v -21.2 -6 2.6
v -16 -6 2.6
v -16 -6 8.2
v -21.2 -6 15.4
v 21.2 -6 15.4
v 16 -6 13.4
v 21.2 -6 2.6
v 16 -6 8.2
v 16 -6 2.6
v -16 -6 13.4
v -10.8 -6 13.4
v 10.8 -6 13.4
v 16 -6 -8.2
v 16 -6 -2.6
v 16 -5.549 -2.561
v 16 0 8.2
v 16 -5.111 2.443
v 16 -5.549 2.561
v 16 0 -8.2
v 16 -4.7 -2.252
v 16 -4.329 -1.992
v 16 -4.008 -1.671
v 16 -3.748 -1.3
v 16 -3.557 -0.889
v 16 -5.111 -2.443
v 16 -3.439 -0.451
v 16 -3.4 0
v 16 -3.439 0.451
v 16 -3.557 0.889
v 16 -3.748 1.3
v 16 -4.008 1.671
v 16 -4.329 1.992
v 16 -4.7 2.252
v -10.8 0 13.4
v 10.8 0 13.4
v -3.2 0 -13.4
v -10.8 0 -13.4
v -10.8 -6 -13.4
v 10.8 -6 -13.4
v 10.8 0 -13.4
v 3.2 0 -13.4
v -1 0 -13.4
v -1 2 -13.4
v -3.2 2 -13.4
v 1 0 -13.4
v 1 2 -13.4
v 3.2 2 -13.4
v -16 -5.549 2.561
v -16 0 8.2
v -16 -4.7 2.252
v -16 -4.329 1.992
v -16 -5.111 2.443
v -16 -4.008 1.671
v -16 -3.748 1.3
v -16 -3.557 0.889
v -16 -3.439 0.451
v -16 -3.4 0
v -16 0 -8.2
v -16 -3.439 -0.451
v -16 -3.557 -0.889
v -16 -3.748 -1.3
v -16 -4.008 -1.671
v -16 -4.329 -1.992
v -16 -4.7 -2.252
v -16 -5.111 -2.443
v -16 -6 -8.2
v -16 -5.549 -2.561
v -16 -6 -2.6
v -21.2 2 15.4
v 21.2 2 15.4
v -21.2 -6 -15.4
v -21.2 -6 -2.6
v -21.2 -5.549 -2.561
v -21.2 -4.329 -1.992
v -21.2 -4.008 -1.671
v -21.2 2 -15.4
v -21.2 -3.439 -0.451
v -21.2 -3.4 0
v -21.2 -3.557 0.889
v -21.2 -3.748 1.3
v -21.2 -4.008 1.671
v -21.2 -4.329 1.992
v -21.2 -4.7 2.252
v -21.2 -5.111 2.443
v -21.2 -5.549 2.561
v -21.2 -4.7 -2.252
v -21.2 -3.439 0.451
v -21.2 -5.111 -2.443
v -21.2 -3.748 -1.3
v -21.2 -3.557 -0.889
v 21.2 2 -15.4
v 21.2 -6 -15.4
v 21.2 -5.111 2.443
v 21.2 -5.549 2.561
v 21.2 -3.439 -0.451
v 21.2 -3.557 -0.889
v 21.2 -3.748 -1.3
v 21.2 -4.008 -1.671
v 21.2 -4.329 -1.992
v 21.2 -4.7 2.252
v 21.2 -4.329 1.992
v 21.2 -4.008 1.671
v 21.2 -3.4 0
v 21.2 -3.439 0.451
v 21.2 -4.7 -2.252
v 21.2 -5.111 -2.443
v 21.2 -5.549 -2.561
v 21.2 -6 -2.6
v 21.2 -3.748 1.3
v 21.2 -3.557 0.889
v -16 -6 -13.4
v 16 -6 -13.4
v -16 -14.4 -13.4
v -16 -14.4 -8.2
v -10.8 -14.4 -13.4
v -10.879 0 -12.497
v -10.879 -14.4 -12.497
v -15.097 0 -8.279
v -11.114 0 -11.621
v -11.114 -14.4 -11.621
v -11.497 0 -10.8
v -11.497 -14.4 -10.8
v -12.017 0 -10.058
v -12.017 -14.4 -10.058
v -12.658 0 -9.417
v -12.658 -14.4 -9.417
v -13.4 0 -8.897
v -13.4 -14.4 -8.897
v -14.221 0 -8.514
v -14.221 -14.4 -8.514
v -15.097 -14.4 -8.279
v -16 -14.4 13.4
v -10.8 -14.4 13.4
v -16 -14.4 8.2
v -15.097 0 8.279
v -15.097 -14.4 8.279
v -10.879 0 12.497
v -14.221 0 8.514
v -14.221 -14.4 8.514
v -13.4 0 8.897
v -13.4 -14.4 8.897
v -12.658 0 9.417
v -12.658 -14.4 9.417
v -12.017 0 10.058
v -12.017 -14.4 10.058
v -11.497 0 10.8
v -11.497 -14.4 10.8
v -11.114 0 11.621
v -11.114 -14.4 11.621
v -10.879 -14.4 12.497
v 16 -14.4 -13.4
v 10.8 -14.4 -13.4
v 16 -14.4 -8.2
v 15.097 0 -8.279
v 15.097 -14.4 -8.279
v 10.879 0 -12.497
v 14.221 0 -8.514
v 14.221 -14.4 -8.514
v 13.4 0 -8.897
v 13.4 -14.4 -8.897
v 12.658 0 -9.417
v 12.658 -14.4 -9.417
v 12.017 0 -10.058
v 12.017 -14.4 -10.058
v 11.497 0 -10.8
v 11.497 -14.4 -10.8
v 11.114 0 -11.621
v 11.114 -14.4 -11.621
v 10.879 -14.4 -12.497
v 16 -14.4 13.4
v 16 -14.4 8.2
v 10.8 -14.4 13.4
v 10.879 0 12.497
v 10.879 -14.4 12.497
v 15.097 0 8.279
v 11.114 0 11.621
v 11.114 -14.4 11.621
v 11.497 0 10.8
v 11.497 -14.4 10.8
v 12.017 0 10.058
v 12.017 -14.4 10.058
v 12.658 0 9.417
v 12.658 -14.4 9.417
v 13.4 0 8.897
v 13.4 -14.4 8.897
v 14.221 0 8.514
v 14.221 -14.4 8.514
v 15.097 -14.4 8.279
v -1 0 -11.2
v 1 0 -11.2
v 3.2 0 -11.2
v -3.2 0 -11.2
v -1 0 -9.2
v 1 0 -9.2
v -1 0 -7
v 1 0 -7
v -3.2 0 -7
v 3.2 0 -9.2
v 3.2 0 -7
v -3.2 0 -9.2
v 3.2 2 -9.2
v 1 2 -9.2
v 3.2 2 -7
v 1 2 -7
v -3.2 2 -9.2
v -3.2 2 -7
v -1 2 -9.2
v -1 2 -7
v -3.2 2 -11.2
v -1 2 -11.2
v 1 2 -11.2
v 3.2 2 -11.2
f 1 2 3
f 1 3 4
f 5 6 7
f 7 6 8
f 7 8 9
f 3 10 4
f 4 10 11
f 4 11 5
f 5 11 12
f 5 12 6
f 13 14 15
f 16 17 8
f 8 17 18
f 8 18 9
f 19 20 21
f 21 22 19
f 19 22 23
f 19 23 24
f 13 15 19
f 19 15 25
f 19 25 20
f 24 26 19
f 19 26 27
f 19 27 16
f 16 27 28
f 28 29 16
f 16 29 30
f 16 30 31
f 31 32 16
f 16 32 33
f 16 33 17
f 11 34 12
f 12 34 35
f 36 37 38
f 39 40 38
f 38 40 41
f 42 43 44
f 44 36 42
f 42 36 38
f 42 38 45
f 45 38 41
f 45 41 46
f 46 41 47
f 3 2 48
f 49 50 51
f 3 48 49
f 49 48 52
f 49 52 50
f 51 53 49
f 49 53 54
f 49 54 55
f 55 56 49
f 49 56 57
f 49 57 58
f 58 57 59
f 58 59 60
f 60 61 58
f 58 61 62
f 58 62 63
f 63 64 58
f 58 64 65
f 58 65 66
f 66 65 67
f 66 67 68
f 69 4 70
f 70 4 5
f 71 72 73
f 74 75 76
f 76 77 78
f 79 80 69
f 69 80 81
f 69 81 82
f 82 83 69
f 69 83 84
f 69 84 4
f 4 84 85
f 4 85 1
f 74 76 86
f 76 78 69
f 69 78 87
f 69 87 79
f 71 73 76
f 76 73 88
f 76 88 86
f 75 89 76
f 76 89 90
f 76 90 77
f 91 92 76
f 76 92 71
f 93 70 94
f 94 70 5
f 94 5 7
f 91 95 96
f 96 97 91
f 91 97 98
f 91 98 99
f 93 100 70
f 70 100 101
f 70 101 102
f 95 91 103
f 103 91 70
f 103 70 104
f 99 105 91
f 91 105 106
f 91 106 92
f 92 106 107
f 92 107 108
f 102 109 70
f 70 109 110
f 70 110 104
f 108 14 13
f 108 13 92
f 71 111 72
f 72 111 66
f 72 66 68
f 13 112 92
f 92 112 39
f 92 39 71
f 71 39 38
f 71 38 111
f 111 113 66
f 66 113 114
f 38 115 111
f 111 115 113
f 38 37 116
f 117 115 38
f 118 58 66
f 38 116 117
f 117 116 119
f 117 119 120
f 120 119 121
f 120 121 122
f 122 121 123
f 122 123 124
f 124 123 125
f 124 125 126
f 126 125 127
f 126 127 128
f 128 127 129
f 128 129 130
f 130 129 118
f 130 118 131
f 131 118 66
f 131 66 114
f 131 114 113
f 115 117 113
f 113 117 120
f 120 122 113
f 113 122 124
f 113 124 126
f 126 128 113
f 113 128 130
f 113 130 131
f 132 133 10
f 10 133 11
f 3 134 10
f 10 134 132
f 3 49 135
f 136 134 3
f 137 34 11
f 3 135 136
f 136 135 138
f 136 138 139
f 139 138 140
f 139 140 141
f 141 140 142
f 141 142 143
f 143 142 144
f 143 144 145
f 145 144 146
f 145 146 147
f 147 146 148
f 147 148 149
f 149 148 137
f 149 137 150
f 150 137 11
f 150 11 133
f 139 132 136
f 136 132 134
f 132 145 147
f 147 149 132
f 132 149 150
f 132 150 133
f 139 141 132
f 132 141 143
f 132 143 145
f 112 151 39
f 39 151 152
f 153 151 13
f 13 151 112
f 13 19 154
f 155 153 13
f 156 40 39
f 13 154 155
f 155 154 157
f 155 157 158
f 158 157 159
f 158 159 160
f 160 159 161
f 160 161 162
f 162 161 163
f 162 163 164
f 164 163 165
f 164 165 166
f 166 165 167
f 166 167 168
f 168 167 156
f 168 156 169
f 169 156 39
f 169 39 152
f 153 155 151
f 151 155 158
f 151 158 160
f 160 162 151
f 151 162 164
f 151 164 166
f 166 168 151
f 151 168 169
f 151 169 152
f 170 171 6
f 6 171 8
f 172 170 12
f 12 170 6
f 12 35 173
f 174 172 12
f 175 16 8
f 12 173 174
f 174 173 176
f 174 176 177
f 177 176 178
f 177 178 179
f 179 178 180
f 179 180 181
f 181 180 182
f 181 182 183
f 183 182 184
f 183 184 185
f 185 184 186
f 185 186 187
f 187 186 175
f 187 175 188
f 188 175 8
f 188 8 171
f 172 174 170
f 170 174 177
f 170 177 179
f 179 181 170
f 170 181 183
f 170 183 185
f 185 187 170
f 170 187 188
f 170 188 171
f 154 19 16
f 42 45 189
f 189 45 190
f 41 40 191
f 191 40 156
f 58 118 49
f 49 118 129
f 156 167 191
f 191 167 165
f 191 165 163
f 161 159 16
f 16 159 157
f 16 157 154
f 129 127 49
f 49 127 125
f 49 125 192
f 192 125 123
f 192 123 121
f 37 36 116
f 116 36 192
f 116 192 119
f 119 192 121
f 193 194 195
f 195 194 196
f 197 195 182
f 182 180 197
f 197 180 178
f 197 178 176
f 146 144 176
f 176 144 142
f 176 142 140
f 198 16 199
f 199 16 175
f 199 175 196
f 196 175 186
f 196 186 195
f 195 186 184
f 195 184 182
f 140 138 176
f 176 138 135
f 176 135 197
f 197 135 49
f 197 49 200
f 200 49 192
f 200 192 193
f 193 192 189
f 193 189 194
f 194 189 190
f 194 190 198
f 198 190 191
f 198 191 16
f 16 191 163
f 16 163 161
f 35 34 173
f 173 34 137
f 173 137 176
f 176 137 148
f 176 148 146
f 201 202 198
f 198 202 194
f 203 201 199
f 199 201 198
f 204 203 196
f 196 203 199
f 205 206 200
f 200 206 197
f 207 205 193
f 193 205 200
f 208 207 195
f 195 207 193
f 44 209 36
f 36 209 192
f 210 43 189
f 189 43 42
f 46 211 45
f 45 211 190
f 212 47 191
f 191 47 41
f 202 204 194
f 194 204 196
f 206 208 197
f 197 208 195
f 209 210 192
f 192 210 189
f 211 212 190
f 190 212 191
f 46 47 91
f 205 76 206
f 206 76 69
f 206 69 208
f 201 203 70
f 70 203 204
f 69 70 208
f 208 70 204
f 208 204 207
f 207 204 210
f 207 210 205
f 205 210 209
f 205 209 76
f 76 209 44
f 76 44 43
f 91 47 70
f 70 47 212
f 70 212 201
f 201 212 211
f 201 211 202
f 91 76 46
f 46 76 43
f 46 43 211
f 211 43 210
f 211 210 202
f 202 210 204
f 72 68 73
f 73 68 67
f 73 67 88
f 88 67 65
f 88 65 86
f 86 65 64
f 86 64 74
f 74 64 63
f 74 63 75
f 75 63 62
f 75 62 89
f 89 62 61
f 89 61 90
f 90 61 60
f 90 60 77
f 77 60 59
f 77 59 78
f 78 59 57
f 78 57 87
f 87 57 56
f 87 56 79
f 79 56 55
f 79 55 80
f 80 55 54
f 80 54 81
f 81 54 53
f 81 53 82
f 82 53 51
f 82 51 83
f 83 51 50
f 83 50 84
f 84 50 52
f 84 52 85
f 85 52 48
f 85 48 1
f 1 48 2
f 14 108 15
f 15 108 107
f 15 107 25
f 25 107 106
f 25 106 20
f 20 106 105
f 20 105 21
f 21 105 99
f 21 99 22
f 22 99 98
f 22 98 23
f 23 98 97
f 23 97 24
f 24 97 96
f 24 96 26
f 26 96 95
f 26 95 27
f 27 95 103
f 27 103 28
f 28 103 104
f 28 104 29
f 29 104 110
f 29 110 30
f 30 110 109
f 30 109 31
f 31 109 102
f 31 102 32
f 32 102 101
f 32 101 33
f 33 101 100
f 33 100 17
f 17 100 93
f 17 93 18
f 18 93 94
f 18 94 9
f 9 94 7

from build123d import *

# Parameters (mm, degrees)
CROQUIS1_W              = 42.4
CROQUIS1_H              = 30.8
CROQUIS1_W_2            = 32
CROQUIS1_H_2            = 26.8
SALIENTE_EXTRUIR1_DEPTH = 6
SALIENTE_EXTRUIR2_DEPTH = 14.4
SALIENTE_EXTRUIR3_START = 2
CROQUIS1_4_W            = 42.4
CROQUIS1_4_H            = 30.8
CROQUIS1_4_W_2          = 32
CROQUIS1_4_H_2          = 26.8
CROQUIS1_4_W_3          = 2.2
CROQUIS1_4_H_3          = 2.2
SALIENTE_EXTRUIR3_DEPTH = 2
CORTAR_EXTRUIR1_REACH   = 49.353


with BuildPart() as part:
    # Croquis1 → Saliente-Extruir1 (new body)
    with BuildSketch(Plane(origin=(0, 0, 0), x_dir=(1, 0, 0), z_dir=(0, 1, 0))):
        Rectangle(CROQUIS1_W, CROQUIS1_H)
        Rectangle(CROQUIS1_W_2, CROQUIS1_H_2, mode=Mode.SUBTRACT)
    extrude(amount=-SALIENTE_EXTRUIR1_DEPTH)

    # Croquis1<3> → Saliente-Extruir2 (add)
    with BuildSketch(Plane(origin=(0, 0, 0), x_dir=(1, 0, 0), z_dir=(0, 1, 0))):
        with BuildLine():
            Line((-16, 13.4), (-16, 8.2))
            ThreePointArc((-16, 8.2), (-12.323044738, 9.723044738), (-10.8, 13.4))
            Line((-10.8, 13.4), (-16, 13.4))
        make_face()
        with BuildLine():
            Line((-16, -8.2), (-16, -13.4))
            Line((-16, -13.4), (-10.8, -13.4))
            ThreePointArc((-10.8, -13.4), (-12.323044738, -9.723044738), (-16, -8.2))
        make_face()
        with BuildLine():
            ThreePointArc((10.8, 13.4), (12.323044738, 9.723044738), (16, 8.2))
            Line((16, 8.2), (16, 13.4))
            Line((16, 13.4), (10.8, 13.4))
        make_face()
        with BuildLine():
            ThreePointArc((16, -8.2), (12.323044738, -9.723044738), (10.8, -13.4))
            Line((10.8, -13.4), (16, -13.4))
            Line((16, -13.4), (16, -8.2))
        make_face()
    extrude(amount=-SALIENTE_EXTRUIR2_DEPTH)

    # Croquis1<4> → Saliente-Extruir3 (add)
    # profile 1 of 6: a face of its own
    with BuildSketch(Plane(origin=(0, 0, 0), x_dir=(1, 0, 0), z_dir=(0, 1, 0)).offset(SALIENTE_EXTRUIR3_START)):
        Rectangle(CROQUIS1_4_W, CROQUIS1_4_H)
        Rectangle(CROQUIS1_4_W_2, CROQUIS1_4_H_2, mode=Mode.SUBTRACT)
    # profile 2 of 6: a face of its own
    with BuildSketch(Plane(origin=(0, 0, 0), x_dir=(1, 0, 0), z_dir=(0, 1, 0)).offset(SALIENTE_EXTRUIR3_START)):
        with BuildLine():
            Line((-16, -8.2), (-16, -13.4))
            Line((-16, -13.4), (-10.8, -13.4))
            ThreePointArc((-10.8, -13.4), (-12.323044738, -9.723044738), (-16, -8.2))
        make_face()
    # profile 3 of 6: a face of its own
    with BuildSketch(Plane(origin=(0, 0, 0), x_dir=(1, 0, 0), z_dir=(0, 1, 0)).offset(SALIENTE_EXTRUIR3_START)):
        with BuildLine():
            ThreePointArc((16, -8.2), (12.323044738, -9.723044738), (10.8, -13.4))
            Line((10.8, -13.4), (16, -13.4))
            Line((16, -13.4), (16, -8.2))
        make_face()
    # profile 4 of 6: a face of its own
    with BuildSketch(Plane(origin=(0, 0, 0), x_dir=(1, 0, 0), z_dir=(0, 1, 0)).offset(SALIENTE_EXTRUIR3_START)):
        with BuildLine():
            ThreePointArc((10.8, 13.4), (12.323044738, 9.723044738), (16, 8.2))
            Line((16, 8.2), (16, 13.4))
            Line((16, 13.4), (10.8, 13.4))
        make_face()
    # profile 5 of 6: a face of its own
    with BuildSketch(Plane(origin=(0, 0, 0), x_dir=(1, 0, 0), z_dir=(0, 1, 0)).offset(SALIENTE_EXTRUIR3_START)):
        with BuildLine():
            Line((-16, 13.4), (-16, 8.2))
            ThreePointArc((-16, 8.2), (-12.323044738, 9.723044738), (-10.8, 13.4))
            Line((-10.8, 13.4), (-16, 13.4))
        make_face()
    # profile 6 of 6: a face of its own
    with BuildSketch(Plane(origin=(0, 0, 0), x_dir=(1, 0, 0), z_dir=(0, 1, 0)).offset(SALIENTE_EXTRUIR3_START)):
        with BuildLine():
            ThreePointArc((-16, -8.2), (-12.323044738, -9.723044738), (-10.8, -13.4))
            Line((-10.8, -13.4), (10.8, -13.4))
            ThreePointArc((10.8, -13.4), (12.323044738, -9.723044738), (16, -8.2))
            Line((16, -8.2), (16, 8.2))
            ThreePointArc((16, 8.2), (12.323044738, 9.723044738), (10.8, 13.4))
            Line((10.8, 13.4), (3.2, 13.4))
            Line((3.2, 13.4), (3.2, 11.2))
            Line((3.2, 11.2), (1, 11.2))
            Line((1, 11.2), (1, 13.4))
            Line((1, 13.4), (-1, 13.4))
            Line((-1, 13.4), (-1, 11.2))
            Line((-1, 11.2), (-3.2, 11.2))
            Line((-3.2, 11.2), (-3.2, 13.4))
            Line((-3.2, 13.4), (-10.8, 13.4))
            ThreePointArc((-10.8, 13.4), (-12.323044738, 9.723044738), (-16, 8.2))
            Line((-16, 8.2), (-16, -8.2))
        make_face()
        with Locations((-2.1, 8.1)):
            Rectangle(CROQUIS1_4_W_3, CROQUIS1_4_H_3, mode=Mode.SUBTRACT)
        with Locations((2.1, 8.1)):
            Rectangle(CROQUIS1_4_W_3, CROQUIS1_4_H_3, mode=Mode.SUBTRACT)
    extrude(amount=-SALIENTE_EXTRUIR3_DEPTH)

    # Cortar-Extruir1: up to this face of the body (flat: up to its plane)
    cortar_extruir1_end = Plane(part.part.faces().sort_by_distance((-21.2, -2, 0))[0])
    # Croquis2 → Cortar-Extruir1 (cut, up to the picked face)
    with BuildSketch(Plane(origin=(21.2, 0, 0), x_dir=(0, 0, -1), z_dir=(1, 0, 0)), mode=Mode.PRIVATE) as cortar_extruir1_sk1:
        with BuildLine():
            Line((-2.6, -6), (2.6, -6))
            ThreePointArc((2.6, -6), (0, -3.4), (-2.6, -6))
        make_face()
    cortar_extruir1_tool1 = split(extrude(cortar_extruir1_sk1.sketch, amount=-CORTAR_EXTRUIR1_REACH, mode=Mode.PRIVATE), bisect_by=cortar_extruir1_end, keep=Keep.BOTH, mode=Mode.PRIVATE)
    add(cortar_extruir1_tool1.solids().sort_by(Axis((21.2, -4.896526, 0), (-1, 0, 0)))[0], mode=Mode.SUBTRACT)


solid = part.part
